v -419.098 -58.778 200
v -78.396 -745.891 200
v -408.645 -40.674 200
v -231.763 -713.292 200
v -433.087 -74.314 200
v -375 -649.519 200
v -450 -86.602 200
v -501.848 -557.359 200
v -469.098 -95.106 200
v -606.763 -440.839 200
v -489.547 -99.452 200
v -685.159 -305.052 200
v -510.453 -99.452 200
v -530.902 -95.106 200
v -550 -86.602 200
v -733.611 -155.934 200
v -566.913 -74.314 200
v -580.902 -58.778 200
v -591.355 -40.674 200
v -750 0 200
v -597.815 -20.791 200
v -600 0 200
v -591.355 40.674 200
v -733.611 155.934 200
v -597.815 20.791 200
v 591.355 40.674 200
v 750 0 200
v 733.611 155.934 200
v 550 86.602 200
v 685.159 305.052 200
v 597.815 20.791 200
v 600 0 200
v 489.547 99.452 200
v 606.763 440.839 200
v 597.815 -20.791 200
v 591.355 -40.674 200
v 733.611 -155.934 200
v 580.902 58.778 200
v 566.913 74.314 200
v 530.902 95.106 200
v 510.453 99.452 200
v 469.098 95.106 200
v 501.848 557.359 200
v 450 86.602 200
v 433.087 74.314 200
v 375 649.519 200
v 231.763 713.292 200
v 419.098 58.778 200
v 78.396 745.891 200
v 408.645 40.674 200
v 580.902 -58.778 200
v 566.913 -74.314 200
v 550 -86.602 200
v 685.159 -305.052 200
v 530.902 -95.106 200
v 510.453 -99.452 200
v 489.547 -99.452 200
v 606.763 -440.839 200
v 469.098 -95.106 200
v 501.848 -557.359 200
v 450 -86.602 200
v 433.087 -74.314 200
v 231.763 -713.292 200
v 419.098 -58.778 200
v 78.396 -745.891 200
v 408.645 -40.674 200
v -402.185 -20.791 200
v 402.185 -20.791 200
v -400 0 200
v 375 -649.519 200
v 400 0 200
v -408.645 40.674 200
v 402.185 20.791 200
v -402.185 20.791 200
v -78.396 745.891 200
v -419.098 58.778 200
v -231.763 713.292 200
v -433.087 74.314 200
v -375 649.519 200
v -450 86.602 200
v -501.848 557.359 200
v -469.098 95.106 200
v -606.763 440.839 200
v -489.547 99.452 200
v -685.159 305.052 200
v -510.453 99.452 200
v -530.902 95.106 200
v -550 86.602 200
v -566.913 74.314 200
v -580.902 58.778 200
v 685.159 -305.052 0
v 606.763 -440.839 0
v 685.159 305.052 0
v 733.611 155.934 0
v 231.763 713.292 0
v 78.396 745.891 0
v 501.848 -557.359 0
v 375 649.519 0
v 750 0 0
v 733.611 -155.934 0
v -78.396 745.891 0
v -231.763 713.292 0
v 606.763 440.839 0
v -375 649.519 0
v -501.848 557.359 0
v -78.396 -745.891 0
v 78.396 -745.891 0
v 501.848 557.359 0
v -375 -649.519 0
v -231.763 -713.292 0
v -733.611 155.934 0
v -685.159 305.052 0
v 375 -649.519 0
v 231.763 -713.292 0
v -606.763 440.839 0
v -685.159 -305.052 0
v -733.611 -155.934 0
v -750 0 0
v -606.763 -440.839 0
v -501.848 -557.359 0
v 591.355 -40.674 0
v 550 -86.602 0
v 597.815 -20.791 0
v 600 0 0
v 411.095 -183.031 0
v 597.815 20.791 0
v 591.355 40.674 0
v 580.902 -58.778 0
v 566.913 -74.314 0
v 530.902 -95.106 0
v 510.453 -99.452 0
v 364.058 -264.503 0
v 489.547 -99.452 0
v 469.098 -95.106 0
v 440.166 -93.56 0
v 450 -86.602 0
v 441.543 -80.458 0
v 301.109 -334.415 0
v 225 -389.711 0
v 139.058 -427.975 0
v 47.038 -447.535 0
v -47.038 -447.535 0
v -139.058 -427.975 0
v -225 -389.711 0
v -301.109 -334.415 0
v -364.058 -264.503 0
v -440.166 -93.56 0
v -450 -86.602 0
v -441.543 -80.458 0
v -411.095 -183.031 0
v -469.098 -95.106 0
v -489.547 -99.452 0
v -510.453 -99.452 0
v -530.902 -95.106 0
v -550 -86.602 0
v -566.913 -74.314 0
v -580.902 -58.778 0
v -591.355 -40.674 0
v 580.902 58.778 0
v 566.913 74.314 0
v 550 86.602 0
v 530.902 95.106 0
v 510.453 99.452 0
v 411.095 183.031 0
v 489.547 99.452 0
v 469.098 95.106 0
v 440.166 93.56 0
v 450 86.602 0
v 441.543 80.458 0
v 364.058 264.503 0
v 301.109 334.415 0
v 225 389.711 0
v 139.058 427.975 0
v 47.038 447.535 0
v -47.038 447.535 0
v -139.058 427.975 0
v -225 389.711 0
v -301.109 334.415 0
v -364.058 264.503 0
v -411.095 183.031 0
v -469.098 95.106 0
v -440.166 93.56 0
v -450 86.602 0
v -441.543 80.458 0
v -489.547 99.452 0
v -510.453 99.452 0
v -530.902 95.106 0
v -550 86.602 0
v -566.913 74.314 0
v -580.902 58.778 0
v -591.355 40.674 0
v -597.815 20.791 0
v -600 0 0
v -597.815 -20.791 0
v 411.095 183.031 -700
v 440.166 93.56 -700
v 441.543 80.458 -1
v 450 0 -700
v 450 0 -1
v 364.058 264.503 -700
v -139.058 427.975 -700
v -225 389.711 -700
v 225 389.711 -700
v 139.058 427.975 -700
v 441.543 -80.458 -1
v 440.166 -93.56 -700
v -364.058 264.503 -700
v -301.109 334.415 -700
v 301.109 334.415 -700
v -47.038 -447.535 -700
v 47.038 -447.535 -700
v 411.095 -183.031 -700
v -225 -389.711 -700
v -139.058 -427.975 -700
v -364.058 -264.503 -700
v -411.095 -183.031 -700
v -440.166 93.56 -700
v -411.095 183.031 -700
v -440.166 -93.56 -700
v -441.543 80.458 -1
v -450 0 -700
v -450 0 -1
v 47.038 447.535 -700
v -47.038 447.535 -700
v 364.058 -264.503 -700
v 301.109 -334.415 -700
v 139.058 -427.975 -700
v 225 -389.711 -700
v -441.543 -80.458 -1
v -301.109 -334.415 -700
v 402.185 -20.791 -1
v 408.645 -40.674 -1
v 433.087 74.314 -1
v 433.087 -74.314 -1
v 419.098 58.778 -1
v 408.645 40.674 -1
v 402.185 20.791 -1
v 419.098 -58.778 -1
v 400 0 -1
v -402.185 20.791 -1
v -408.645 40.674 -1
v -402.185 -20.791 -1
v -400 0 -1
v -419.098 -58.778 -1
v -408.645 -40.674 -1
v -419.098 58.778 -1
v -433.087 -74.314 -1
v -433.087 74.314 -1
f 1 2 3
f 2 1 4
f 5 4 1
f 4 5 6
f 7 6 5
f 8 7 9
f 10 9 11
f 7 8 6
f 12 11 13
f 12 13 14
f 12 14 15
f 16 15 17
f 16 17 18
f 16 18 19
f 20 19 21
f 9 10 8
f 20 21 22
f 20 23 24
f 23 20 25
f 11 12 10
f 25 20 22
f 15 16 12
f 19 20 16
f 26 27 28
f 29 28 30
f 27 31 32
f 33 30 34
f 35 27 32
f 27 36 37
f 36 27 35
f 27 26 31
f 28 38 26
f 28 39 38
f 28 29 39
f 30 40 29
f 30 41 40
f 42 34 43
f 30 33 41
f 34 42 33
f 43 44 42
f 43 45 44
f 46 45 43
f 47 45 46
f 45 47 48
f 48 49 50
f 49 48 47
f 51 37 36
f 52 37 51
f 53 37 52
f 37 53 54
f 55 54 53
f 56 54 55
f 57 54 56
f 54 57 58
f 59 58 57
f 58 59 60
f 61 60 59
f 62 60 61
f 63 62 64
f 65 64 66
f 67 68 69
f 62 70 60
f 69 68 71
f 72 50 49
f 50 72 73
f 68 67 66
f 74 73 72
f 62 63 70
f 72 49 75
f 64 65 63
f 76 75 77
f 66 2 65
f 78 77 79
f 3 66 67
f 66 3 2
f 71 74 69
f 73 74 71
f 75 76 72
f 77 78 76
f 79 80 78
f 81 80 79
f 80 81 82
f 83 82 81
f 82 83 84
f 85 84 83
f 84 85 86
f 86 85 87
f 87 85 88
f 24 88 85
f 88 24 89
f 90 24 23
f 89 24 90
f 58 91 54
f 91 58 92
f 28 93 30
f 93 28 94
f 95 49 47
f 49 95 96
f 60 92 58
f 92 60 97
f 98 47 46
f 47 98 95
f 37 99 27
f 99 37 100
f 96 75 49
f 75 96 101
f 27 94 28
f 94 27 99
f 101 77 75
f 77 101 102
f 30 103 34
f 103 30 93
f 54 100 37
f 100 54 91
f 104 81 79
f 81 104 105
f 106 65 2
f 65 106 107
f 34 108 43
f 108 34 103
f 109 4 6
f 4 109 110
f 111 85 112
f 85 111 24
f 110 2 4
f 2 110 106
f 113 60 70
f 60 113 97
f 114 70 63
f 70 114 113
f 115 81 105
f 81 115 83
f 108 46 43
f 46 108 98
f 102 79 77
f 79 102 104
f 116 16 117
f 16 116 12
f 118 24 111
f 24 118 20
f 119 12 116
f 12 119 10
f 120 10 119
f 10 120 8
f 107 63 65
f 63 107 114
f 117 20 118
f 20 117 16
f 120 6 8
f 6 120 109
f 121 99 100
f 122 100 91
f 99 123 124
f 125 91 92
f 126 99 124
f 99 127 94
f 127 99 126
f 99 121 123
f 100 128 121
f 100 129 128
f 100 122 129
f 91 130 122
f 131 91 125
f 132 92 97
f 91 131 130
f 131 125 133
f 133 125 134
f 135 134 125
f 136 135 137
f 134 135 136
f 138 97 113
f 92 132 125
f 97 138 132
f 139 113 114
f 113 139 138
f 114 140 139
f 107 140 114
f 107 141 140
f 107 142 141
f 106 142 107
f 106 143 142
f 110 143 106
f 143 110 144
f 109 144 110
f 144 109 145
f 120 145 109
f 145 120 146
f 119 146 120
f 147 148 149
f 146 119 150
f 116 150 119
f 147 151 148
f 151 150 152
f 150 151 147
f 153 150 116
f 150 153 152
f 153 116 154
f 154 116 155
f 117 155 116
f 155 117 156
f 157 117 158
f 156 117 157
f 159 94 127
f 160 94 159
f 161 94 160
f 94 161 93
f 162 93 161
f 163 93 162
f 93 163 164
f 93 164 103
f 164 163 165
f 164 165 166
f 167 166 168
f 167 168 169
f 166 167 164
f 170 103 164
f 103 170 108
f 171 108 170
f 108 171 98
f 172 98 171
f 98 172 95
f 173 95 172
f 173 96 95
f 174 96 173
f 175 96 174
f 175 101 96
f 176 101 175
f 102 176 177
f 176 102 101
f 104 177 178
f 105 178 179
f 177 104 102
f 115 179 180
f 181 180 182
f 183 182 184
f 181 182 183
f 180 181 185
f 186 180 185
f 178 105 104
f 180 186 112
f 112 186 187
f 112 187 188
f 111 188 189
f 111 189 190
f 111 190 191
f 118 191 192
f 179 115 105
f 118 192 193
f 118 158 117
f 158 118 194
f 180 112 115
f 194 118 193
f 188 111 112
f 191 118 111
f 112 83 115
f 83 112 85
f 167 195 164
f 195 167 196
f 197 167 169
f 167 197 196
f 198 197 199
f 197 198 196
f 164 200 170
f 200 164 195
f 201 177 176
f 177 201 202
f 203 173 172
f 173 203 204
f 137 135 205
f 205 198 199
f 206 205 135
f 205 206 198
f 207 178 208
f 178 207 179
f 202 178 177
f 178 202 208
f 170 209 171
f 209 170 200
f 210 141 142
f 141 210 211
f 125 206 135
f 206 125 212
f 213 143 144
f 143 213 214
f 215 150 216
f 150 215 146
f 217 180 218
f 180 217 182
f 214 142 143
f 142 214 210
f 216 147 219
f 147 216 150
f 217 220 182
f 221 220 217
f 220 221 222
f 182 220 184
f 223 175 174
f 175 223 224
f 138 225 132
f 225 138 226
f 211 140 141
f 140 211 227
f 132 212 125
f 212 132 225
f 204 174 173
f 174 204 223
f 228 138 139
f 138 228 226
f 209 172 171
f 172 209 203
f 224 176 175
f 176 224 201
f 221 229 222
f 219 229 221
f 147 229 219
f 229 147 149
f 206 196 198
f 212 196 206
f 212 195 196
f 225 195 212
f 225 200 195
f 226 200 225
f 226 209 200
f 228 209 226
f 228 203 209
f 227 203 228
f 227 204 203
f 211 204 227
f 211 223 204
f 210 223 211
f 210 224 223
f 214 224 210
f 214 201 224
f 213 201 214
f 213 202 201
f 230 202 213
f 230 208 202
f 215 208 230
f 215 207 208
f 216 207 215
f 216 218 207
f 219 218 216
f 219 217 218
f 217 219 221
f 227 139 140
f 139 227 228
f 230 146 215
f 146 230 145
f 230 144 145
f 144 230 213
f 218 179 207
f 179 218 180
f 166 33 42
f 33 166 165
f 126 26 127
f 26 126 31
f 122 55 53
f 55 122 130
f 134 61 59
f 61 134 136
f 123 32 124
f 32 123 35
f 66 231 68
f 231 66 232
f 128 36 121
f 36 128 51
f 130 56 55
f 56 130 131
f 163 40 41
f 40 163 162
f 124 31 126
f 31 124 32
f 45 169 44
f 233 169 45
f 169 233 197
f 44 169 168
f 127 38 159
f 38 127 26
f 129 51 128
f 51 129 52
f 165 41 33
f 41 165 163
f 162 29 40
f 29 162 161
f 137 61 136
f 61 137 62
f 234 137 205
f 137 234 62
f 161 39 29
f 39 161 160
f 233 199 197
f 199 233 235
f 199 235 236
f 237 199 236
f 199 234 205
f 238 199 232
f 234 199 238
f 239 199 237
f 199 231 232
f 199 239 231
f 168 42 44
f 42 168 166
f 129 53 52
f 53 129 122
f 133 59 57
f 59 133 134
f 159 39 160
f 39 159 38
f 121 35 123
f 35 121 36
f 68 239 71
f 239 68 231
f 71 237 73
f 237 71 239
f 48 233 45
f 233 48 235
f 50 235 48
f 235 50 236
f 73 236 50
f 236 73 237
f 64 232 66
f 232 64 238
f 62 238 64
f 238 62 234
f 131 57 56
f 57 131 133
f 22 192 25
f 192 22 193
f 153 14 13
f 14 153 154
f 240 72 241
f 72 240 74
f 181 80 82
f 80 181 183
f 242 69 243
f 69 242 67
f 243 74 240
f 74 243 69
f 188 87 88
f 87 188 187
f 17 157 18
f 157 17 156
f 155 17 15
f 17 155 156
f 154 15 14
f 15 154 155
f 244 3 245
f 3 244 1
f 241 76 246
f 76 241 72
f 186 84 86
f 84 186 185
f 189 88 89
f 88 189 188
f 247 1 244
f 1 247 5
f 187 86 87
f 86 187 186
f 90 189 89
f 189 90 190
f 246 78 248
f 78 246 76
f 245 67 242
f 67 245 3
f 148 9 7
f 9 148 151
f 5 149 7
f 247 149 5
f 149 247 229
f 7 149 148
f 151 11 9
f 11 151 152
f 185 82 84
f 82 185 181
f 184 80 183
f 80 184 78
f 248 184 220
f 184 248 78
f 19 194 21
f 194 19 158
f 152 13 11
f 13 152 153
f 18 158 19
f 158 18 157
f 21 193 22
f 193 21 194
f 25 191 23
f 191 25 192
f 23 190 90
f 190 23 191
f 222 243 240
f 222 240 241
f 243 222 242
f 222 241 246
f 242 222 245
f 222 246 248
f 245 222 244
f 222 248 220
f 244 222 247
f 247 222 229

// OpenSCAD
// 1 unit = 10µm
scale_factor = 0.01;
bulk_height = 2000;
bulk_diameter = 1500;
tube_diameter = 400;
bottom_padding = 200;
side_padding = 400;
funnel_height = 500;
y_trunk_height = 700;
y_branch_height = 1200;
y_branch_angle = 15;
holder_height = 700;
holder_diameter = 900;
holder_pin = 10;
pins_diameter = 200;
pins_height = bottom_padding+holder_pin;


module InnerChannels() {
    
    difference() {
    
        translate([0, -bulk_diameter/5, bottom_padding]) {

            cylinder(bulk_height-bottom_padding, d=tube_diameter);
            sphere(d=tube_diameter);

            translate([0, 0, bulk_height-bottom_padding-funnel_height])
                cylinder(funnel_height+1, d1=tube_diameter, d2=tube_diameter*2);

            rotate([-90, 0, 0])
                cylinder(bulk_diameter-side_padding*2, d=tube_diameter);

            translate([0, bulk_diameter-side_padding*2, 0]) {
                
                sphere(d=tube_diameter);
                cylinder(y_trunk_height, d=tube_diameter);
                
                translate([0, 0, y_trunk_height]) {
                    
                    rotate([0, y_branch_angle, 0])
                        cylinder(y_branch_height, d=tube_diameter);
                    rotate([0, -y_branch_angle, 0])
                        cylinder(y_branch_height, d=tube_diameter);
                    
                    
                }
                
            }
            
            translate([-tube_diameter/2, 0, 0])
                cube([tube_diameter, bulk_diameter-side_padding*2, tube_diameter]);

        }

        translate([-(tube_diameter+2)/2, -bulk_diameter/5-tube_diameter/2, -1])
            cube([tube_diameter+2, bulk_diameter-side_padding, (tube_diameter+2)/2]);
                
    }

}

module FullObject() {
    
    difference() {
    
        cylinder(bulk_height, d=bulk_diameter);
        InnerChannels();
        
    }

    translate([0, 0, -holder_height])
        cylinder(holder_height+holder_pin, d=holder_diameter);

    
}



difference() {

    intersection() {

        FullObject();
        translate([0, 0, bottom_padding-bulk_height/2])
            cube(bulk_height, center=true);

    }

    translate([bulk_diameter/3, 0, -1])
        cylinder(pins_height, d=pins_diameter);

    translate([-bulk_diameter/3, 0, -1])
        cylinder(pins_height, d=pins_diameter);

}
